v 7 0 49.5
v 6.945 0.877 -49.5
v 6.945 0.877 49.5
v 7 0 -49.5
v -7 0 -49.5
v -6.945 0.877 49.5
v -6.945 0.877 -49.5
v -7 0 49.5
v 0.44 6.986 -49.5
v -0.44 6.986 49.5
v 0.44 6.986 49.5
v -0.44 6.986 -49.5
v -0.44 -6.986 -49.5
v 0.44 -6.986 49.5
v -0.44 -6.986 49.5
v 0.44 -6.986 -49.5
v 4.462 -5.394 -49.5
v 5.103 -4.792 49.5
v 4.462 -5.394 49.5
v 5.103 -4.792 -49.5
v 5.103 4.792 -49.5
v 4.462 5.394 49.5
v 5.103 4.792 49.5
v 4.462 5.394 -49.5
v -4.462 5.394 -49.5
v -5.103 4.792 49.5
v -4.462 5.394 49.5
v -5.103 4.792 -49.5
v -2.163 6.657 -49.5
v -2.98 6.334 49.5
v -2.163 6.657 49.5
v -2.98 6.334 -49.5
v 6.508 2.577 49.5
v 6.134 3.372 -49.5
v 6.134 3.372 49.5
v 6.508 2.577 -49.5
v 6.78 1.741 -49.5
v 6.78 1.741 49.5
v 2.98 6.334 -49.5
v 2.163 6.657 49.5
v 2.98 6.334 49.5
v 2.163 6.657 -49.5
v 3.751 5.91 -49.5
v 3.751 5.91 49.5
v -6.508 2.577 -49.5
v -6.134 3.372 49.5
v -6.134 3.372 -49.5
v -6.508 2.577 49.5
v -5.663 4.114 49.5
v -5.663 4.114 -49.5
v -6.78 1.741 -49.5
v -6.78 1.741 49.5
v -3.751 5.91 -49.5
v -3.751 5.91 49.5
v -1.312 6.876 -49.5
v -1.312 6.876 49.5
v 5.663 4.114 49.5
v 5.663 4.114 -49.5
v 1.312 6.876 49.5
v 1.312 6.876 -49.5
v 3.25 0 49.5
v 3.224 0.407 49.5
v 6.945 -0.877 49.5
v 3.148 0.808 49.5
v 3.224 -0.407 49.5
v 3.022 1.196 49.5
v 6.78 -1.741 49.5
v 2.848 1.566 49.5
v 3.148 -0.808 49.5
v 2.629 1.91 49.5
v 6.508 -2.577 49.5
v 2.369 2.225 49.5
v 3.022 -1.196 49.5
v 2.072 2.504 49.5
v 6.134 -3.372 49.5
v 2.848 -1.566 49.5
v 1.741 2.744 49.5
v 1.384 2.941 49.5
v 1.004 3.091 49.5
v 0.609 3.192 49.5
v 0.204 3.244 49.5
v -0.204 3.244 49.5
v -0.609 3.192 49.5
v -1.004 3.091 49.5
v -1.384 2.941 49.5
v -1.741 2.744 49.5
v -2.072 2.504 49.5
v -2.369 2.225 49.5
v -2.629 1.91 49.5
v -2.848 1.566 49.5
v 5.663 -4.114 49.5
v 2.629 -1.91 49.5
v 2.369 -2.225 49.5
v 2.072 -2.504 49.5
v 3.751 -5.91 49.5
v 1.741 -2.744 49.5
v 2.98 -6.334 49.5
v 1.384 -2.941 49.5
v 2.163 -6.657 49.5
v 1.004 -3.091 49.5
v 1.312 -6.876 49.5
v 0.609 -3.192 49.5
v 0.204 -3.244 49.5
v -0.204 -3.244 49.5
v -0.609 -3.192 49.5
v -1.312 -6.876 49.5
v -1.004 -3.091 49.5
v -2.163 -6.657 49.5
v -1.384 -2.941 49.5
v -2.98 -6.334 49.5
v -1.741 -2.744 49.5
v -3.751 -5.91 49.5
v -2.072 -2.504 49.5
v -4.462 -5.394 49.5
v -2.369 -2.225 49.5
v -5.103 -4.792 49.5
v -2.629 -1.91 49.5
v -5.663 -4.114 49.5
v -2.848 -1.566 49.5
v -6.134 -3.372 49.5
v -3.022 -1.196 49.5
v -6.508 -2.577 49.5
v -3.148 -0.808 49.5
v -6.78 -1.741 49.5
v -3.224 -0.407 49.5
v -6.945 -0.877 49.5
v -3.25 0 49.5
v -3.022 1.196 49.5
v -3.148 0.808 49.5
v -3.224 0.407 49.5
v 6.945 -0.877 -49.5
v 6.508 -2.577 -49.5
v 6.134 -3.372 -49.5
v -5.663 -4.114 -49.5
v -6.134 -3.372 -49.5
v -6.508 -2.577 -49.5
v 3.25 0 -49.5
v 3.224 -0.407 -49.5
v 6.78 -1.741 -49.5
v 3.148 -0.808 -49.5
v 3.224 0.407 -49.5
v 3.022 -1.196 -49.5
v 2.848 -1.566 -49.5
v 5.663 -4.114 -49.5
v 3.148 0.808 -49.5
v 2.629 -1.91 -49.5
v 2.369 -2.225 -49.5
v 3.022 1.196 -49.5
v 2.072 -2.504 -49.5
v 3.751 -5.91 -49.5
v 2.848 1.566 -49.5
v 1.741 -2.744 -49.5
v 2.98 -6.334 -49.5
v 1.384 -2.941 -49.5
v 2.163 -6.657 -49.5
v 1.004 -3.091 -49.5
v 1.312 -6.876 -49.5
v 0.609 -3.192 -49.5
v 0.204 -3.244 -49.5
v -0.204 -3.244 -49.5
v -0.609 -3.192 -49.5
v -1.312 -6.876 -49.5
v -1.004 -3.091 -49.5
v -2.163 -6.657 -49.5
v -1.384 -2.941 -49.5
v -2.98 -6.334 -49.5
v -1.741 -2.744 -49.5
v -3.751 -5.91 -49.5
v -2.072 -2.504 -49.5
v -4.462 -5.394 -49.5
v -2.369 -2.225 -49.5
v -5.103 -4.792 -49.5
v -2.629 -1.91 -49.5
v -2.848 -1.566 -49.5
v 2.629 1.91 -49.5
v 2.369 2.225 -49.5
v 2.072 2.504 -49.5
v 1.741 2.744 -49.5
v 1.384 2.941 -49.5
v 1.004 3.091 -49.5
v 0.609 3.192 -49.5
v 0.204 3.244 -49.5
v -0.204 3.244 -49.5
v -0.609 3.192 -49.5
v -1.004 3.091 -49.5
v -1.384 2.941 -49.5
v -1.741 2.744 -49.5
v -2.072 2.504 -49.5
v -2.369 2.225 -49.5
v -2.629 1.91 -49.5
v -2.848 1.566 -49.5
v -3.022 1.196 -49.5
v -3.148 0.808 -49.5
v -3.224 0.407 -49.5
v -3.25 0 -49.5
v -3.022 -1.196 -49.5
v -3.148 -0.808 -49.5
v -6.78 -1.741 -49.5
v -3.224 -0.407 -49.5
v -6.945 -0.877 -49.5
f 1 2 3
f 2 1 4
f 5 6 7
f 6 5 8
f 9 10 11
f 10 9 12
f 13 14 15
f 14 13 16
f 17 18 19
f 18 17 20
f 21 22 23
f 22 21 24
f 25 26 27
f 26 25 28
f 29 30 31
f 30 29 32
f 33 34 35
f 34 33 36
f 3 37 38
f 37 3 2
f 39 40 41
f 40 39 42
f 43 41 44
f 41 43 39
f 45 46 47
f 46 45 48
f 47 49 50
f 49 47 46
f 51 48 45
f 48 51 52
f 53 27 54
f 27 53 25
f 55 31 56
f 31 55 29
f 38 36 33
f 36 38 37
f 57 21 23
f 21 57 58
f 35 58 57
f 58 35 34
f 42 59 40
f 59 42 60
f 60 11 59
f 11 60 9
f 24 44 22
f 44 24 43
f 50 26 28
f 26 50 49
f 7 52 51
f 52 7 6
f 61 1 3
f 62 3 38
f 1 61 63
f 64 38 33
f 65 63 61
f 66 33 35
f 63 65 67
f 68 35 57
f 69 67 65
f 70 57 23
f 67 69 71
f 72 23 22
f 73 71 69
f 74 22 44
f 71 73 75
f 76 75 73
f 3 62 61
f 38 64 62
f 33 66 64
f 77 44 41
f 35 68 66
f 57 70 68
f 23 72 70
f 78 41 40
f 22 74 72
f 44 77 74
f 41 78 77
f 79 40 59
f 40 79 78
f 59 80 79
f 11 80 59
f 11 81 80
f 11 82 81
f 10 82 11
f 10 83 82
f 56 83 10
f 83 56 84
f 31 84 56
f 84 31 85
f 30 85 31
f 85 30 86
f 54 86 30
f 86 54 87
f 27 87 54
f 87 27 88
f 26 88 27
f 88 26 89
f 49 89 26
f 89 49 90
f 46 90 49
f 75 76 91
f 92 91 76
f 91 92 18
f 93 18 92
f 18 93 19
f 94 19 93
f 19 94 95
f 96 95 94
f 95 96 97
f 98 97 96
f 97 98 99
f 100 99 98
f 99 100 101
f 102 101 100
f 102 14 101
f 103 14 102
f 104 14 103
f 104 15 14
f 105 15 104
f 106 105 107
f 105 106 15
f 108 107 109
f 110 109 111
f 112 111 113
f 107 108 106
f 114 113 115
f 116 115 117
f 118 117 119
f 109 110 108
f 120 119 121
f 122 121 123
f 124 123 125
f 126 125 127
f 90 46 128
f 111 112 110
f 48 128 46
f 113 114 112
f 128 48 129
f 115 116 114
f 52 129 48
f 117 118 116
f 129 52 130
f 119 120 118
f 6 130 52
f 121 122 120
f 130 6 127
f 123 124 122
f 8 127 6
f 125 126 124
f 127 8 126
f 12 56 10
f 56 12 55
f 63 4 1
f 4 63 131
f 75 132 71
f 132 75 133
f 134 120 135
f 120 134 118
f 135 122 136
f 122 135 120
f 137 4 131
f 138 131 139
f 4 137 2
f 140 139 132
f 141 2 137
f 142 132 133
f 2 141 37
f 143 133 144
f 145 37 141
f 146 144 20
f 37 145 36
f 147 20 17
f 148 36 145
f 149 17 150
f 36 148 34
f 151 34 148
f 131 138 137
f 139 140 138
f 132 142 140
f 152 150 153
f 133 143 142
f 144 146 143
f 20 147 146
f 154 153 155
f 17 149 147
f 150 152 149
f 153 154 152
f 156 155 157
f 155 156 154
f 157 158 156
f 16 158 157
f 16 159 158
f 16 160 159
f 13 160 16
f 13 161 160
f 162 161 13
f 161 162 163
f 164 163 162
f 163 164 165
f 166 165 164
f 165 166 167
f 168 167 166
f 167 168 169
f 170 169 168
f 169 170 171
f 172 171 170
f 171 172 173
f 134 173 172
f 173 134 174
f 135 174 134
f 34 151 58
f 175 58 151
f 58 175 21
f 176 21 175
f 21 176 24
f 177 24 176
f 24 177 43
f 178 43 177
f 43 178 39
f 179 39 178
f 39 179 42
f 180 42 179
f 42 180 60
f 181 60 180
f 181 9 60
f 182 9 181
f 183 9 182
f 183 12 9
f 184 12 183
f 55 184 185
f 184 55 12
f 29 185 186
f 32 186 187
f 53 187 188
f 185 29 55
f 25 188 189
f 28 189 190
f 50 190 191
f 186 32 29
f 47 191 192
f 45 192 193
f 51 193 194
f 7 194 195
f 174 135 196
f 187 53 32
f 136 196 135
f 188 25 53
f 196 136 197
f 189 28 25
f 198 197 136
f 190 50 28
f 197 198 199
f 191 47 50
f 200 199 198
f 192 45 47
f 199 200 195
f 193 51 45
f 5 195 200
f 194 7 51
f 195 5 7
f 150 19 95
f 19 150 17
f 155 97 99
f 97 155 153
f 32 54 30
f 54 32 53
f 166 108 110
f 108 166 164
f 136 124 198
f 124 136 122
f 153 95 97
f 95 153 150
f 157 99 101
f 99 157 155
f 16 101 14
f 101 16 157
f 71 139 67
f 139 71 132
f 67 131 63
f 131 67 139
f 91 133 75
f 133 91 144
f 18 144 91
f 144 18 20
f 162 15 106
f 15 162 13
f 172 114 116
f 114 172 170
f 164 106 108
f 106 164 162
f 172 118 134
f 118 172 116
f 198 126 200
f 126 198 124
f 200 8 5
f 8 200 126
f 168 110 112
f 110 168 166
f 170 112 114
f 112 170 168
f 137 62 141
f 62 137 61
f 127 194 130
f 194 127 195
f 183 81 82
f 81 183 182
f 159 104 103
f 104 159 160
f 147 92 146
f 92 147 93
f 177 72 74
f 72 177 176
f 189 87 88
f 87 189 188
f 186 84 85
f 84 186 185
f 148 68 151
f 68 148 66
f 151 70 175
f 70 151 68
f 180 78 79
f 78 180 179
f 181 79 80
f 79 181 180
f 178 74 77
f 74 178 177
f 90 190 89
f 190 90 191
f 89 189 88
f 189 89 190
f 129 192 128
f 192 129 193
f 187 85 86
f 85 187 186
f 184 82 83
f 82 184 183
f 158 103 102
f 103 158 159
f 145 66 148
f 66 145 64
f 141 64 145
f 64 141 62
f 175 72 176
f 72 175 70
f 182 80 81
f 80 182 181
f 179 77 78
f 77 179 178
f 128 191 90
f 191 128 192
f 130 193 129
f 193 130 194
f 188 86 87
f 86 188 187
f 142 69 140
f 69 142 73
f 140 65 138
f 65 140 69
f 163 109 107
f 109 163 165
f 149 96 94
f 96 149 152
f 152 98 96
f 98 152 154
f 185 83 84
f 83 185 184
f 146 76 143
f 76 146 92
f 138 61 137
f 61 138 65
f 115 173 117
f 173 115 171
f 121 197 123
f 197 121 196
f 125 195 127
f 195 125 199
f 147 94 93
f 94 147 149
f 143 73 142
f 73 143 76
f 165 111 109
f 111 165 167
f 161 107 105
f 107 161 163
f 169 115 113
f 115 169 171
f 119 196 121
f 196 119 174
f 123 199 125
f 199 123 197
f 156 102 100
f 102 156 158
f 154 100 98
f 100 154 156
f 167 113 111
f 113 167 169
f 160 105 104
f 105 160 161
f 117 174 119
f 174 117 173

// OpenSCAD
$fn = 50;


difference() {
	union() {
		translate(v = [0, 0, -49.5000000000]) {
			cylinder(h = 99, r = 7.0000000000);
		}
	}
	union() {
		translate(v = [0, 0, -100.0000000000]) {
			cylinder(h = 200, r = 3.2500000000);
		}
	}
}
